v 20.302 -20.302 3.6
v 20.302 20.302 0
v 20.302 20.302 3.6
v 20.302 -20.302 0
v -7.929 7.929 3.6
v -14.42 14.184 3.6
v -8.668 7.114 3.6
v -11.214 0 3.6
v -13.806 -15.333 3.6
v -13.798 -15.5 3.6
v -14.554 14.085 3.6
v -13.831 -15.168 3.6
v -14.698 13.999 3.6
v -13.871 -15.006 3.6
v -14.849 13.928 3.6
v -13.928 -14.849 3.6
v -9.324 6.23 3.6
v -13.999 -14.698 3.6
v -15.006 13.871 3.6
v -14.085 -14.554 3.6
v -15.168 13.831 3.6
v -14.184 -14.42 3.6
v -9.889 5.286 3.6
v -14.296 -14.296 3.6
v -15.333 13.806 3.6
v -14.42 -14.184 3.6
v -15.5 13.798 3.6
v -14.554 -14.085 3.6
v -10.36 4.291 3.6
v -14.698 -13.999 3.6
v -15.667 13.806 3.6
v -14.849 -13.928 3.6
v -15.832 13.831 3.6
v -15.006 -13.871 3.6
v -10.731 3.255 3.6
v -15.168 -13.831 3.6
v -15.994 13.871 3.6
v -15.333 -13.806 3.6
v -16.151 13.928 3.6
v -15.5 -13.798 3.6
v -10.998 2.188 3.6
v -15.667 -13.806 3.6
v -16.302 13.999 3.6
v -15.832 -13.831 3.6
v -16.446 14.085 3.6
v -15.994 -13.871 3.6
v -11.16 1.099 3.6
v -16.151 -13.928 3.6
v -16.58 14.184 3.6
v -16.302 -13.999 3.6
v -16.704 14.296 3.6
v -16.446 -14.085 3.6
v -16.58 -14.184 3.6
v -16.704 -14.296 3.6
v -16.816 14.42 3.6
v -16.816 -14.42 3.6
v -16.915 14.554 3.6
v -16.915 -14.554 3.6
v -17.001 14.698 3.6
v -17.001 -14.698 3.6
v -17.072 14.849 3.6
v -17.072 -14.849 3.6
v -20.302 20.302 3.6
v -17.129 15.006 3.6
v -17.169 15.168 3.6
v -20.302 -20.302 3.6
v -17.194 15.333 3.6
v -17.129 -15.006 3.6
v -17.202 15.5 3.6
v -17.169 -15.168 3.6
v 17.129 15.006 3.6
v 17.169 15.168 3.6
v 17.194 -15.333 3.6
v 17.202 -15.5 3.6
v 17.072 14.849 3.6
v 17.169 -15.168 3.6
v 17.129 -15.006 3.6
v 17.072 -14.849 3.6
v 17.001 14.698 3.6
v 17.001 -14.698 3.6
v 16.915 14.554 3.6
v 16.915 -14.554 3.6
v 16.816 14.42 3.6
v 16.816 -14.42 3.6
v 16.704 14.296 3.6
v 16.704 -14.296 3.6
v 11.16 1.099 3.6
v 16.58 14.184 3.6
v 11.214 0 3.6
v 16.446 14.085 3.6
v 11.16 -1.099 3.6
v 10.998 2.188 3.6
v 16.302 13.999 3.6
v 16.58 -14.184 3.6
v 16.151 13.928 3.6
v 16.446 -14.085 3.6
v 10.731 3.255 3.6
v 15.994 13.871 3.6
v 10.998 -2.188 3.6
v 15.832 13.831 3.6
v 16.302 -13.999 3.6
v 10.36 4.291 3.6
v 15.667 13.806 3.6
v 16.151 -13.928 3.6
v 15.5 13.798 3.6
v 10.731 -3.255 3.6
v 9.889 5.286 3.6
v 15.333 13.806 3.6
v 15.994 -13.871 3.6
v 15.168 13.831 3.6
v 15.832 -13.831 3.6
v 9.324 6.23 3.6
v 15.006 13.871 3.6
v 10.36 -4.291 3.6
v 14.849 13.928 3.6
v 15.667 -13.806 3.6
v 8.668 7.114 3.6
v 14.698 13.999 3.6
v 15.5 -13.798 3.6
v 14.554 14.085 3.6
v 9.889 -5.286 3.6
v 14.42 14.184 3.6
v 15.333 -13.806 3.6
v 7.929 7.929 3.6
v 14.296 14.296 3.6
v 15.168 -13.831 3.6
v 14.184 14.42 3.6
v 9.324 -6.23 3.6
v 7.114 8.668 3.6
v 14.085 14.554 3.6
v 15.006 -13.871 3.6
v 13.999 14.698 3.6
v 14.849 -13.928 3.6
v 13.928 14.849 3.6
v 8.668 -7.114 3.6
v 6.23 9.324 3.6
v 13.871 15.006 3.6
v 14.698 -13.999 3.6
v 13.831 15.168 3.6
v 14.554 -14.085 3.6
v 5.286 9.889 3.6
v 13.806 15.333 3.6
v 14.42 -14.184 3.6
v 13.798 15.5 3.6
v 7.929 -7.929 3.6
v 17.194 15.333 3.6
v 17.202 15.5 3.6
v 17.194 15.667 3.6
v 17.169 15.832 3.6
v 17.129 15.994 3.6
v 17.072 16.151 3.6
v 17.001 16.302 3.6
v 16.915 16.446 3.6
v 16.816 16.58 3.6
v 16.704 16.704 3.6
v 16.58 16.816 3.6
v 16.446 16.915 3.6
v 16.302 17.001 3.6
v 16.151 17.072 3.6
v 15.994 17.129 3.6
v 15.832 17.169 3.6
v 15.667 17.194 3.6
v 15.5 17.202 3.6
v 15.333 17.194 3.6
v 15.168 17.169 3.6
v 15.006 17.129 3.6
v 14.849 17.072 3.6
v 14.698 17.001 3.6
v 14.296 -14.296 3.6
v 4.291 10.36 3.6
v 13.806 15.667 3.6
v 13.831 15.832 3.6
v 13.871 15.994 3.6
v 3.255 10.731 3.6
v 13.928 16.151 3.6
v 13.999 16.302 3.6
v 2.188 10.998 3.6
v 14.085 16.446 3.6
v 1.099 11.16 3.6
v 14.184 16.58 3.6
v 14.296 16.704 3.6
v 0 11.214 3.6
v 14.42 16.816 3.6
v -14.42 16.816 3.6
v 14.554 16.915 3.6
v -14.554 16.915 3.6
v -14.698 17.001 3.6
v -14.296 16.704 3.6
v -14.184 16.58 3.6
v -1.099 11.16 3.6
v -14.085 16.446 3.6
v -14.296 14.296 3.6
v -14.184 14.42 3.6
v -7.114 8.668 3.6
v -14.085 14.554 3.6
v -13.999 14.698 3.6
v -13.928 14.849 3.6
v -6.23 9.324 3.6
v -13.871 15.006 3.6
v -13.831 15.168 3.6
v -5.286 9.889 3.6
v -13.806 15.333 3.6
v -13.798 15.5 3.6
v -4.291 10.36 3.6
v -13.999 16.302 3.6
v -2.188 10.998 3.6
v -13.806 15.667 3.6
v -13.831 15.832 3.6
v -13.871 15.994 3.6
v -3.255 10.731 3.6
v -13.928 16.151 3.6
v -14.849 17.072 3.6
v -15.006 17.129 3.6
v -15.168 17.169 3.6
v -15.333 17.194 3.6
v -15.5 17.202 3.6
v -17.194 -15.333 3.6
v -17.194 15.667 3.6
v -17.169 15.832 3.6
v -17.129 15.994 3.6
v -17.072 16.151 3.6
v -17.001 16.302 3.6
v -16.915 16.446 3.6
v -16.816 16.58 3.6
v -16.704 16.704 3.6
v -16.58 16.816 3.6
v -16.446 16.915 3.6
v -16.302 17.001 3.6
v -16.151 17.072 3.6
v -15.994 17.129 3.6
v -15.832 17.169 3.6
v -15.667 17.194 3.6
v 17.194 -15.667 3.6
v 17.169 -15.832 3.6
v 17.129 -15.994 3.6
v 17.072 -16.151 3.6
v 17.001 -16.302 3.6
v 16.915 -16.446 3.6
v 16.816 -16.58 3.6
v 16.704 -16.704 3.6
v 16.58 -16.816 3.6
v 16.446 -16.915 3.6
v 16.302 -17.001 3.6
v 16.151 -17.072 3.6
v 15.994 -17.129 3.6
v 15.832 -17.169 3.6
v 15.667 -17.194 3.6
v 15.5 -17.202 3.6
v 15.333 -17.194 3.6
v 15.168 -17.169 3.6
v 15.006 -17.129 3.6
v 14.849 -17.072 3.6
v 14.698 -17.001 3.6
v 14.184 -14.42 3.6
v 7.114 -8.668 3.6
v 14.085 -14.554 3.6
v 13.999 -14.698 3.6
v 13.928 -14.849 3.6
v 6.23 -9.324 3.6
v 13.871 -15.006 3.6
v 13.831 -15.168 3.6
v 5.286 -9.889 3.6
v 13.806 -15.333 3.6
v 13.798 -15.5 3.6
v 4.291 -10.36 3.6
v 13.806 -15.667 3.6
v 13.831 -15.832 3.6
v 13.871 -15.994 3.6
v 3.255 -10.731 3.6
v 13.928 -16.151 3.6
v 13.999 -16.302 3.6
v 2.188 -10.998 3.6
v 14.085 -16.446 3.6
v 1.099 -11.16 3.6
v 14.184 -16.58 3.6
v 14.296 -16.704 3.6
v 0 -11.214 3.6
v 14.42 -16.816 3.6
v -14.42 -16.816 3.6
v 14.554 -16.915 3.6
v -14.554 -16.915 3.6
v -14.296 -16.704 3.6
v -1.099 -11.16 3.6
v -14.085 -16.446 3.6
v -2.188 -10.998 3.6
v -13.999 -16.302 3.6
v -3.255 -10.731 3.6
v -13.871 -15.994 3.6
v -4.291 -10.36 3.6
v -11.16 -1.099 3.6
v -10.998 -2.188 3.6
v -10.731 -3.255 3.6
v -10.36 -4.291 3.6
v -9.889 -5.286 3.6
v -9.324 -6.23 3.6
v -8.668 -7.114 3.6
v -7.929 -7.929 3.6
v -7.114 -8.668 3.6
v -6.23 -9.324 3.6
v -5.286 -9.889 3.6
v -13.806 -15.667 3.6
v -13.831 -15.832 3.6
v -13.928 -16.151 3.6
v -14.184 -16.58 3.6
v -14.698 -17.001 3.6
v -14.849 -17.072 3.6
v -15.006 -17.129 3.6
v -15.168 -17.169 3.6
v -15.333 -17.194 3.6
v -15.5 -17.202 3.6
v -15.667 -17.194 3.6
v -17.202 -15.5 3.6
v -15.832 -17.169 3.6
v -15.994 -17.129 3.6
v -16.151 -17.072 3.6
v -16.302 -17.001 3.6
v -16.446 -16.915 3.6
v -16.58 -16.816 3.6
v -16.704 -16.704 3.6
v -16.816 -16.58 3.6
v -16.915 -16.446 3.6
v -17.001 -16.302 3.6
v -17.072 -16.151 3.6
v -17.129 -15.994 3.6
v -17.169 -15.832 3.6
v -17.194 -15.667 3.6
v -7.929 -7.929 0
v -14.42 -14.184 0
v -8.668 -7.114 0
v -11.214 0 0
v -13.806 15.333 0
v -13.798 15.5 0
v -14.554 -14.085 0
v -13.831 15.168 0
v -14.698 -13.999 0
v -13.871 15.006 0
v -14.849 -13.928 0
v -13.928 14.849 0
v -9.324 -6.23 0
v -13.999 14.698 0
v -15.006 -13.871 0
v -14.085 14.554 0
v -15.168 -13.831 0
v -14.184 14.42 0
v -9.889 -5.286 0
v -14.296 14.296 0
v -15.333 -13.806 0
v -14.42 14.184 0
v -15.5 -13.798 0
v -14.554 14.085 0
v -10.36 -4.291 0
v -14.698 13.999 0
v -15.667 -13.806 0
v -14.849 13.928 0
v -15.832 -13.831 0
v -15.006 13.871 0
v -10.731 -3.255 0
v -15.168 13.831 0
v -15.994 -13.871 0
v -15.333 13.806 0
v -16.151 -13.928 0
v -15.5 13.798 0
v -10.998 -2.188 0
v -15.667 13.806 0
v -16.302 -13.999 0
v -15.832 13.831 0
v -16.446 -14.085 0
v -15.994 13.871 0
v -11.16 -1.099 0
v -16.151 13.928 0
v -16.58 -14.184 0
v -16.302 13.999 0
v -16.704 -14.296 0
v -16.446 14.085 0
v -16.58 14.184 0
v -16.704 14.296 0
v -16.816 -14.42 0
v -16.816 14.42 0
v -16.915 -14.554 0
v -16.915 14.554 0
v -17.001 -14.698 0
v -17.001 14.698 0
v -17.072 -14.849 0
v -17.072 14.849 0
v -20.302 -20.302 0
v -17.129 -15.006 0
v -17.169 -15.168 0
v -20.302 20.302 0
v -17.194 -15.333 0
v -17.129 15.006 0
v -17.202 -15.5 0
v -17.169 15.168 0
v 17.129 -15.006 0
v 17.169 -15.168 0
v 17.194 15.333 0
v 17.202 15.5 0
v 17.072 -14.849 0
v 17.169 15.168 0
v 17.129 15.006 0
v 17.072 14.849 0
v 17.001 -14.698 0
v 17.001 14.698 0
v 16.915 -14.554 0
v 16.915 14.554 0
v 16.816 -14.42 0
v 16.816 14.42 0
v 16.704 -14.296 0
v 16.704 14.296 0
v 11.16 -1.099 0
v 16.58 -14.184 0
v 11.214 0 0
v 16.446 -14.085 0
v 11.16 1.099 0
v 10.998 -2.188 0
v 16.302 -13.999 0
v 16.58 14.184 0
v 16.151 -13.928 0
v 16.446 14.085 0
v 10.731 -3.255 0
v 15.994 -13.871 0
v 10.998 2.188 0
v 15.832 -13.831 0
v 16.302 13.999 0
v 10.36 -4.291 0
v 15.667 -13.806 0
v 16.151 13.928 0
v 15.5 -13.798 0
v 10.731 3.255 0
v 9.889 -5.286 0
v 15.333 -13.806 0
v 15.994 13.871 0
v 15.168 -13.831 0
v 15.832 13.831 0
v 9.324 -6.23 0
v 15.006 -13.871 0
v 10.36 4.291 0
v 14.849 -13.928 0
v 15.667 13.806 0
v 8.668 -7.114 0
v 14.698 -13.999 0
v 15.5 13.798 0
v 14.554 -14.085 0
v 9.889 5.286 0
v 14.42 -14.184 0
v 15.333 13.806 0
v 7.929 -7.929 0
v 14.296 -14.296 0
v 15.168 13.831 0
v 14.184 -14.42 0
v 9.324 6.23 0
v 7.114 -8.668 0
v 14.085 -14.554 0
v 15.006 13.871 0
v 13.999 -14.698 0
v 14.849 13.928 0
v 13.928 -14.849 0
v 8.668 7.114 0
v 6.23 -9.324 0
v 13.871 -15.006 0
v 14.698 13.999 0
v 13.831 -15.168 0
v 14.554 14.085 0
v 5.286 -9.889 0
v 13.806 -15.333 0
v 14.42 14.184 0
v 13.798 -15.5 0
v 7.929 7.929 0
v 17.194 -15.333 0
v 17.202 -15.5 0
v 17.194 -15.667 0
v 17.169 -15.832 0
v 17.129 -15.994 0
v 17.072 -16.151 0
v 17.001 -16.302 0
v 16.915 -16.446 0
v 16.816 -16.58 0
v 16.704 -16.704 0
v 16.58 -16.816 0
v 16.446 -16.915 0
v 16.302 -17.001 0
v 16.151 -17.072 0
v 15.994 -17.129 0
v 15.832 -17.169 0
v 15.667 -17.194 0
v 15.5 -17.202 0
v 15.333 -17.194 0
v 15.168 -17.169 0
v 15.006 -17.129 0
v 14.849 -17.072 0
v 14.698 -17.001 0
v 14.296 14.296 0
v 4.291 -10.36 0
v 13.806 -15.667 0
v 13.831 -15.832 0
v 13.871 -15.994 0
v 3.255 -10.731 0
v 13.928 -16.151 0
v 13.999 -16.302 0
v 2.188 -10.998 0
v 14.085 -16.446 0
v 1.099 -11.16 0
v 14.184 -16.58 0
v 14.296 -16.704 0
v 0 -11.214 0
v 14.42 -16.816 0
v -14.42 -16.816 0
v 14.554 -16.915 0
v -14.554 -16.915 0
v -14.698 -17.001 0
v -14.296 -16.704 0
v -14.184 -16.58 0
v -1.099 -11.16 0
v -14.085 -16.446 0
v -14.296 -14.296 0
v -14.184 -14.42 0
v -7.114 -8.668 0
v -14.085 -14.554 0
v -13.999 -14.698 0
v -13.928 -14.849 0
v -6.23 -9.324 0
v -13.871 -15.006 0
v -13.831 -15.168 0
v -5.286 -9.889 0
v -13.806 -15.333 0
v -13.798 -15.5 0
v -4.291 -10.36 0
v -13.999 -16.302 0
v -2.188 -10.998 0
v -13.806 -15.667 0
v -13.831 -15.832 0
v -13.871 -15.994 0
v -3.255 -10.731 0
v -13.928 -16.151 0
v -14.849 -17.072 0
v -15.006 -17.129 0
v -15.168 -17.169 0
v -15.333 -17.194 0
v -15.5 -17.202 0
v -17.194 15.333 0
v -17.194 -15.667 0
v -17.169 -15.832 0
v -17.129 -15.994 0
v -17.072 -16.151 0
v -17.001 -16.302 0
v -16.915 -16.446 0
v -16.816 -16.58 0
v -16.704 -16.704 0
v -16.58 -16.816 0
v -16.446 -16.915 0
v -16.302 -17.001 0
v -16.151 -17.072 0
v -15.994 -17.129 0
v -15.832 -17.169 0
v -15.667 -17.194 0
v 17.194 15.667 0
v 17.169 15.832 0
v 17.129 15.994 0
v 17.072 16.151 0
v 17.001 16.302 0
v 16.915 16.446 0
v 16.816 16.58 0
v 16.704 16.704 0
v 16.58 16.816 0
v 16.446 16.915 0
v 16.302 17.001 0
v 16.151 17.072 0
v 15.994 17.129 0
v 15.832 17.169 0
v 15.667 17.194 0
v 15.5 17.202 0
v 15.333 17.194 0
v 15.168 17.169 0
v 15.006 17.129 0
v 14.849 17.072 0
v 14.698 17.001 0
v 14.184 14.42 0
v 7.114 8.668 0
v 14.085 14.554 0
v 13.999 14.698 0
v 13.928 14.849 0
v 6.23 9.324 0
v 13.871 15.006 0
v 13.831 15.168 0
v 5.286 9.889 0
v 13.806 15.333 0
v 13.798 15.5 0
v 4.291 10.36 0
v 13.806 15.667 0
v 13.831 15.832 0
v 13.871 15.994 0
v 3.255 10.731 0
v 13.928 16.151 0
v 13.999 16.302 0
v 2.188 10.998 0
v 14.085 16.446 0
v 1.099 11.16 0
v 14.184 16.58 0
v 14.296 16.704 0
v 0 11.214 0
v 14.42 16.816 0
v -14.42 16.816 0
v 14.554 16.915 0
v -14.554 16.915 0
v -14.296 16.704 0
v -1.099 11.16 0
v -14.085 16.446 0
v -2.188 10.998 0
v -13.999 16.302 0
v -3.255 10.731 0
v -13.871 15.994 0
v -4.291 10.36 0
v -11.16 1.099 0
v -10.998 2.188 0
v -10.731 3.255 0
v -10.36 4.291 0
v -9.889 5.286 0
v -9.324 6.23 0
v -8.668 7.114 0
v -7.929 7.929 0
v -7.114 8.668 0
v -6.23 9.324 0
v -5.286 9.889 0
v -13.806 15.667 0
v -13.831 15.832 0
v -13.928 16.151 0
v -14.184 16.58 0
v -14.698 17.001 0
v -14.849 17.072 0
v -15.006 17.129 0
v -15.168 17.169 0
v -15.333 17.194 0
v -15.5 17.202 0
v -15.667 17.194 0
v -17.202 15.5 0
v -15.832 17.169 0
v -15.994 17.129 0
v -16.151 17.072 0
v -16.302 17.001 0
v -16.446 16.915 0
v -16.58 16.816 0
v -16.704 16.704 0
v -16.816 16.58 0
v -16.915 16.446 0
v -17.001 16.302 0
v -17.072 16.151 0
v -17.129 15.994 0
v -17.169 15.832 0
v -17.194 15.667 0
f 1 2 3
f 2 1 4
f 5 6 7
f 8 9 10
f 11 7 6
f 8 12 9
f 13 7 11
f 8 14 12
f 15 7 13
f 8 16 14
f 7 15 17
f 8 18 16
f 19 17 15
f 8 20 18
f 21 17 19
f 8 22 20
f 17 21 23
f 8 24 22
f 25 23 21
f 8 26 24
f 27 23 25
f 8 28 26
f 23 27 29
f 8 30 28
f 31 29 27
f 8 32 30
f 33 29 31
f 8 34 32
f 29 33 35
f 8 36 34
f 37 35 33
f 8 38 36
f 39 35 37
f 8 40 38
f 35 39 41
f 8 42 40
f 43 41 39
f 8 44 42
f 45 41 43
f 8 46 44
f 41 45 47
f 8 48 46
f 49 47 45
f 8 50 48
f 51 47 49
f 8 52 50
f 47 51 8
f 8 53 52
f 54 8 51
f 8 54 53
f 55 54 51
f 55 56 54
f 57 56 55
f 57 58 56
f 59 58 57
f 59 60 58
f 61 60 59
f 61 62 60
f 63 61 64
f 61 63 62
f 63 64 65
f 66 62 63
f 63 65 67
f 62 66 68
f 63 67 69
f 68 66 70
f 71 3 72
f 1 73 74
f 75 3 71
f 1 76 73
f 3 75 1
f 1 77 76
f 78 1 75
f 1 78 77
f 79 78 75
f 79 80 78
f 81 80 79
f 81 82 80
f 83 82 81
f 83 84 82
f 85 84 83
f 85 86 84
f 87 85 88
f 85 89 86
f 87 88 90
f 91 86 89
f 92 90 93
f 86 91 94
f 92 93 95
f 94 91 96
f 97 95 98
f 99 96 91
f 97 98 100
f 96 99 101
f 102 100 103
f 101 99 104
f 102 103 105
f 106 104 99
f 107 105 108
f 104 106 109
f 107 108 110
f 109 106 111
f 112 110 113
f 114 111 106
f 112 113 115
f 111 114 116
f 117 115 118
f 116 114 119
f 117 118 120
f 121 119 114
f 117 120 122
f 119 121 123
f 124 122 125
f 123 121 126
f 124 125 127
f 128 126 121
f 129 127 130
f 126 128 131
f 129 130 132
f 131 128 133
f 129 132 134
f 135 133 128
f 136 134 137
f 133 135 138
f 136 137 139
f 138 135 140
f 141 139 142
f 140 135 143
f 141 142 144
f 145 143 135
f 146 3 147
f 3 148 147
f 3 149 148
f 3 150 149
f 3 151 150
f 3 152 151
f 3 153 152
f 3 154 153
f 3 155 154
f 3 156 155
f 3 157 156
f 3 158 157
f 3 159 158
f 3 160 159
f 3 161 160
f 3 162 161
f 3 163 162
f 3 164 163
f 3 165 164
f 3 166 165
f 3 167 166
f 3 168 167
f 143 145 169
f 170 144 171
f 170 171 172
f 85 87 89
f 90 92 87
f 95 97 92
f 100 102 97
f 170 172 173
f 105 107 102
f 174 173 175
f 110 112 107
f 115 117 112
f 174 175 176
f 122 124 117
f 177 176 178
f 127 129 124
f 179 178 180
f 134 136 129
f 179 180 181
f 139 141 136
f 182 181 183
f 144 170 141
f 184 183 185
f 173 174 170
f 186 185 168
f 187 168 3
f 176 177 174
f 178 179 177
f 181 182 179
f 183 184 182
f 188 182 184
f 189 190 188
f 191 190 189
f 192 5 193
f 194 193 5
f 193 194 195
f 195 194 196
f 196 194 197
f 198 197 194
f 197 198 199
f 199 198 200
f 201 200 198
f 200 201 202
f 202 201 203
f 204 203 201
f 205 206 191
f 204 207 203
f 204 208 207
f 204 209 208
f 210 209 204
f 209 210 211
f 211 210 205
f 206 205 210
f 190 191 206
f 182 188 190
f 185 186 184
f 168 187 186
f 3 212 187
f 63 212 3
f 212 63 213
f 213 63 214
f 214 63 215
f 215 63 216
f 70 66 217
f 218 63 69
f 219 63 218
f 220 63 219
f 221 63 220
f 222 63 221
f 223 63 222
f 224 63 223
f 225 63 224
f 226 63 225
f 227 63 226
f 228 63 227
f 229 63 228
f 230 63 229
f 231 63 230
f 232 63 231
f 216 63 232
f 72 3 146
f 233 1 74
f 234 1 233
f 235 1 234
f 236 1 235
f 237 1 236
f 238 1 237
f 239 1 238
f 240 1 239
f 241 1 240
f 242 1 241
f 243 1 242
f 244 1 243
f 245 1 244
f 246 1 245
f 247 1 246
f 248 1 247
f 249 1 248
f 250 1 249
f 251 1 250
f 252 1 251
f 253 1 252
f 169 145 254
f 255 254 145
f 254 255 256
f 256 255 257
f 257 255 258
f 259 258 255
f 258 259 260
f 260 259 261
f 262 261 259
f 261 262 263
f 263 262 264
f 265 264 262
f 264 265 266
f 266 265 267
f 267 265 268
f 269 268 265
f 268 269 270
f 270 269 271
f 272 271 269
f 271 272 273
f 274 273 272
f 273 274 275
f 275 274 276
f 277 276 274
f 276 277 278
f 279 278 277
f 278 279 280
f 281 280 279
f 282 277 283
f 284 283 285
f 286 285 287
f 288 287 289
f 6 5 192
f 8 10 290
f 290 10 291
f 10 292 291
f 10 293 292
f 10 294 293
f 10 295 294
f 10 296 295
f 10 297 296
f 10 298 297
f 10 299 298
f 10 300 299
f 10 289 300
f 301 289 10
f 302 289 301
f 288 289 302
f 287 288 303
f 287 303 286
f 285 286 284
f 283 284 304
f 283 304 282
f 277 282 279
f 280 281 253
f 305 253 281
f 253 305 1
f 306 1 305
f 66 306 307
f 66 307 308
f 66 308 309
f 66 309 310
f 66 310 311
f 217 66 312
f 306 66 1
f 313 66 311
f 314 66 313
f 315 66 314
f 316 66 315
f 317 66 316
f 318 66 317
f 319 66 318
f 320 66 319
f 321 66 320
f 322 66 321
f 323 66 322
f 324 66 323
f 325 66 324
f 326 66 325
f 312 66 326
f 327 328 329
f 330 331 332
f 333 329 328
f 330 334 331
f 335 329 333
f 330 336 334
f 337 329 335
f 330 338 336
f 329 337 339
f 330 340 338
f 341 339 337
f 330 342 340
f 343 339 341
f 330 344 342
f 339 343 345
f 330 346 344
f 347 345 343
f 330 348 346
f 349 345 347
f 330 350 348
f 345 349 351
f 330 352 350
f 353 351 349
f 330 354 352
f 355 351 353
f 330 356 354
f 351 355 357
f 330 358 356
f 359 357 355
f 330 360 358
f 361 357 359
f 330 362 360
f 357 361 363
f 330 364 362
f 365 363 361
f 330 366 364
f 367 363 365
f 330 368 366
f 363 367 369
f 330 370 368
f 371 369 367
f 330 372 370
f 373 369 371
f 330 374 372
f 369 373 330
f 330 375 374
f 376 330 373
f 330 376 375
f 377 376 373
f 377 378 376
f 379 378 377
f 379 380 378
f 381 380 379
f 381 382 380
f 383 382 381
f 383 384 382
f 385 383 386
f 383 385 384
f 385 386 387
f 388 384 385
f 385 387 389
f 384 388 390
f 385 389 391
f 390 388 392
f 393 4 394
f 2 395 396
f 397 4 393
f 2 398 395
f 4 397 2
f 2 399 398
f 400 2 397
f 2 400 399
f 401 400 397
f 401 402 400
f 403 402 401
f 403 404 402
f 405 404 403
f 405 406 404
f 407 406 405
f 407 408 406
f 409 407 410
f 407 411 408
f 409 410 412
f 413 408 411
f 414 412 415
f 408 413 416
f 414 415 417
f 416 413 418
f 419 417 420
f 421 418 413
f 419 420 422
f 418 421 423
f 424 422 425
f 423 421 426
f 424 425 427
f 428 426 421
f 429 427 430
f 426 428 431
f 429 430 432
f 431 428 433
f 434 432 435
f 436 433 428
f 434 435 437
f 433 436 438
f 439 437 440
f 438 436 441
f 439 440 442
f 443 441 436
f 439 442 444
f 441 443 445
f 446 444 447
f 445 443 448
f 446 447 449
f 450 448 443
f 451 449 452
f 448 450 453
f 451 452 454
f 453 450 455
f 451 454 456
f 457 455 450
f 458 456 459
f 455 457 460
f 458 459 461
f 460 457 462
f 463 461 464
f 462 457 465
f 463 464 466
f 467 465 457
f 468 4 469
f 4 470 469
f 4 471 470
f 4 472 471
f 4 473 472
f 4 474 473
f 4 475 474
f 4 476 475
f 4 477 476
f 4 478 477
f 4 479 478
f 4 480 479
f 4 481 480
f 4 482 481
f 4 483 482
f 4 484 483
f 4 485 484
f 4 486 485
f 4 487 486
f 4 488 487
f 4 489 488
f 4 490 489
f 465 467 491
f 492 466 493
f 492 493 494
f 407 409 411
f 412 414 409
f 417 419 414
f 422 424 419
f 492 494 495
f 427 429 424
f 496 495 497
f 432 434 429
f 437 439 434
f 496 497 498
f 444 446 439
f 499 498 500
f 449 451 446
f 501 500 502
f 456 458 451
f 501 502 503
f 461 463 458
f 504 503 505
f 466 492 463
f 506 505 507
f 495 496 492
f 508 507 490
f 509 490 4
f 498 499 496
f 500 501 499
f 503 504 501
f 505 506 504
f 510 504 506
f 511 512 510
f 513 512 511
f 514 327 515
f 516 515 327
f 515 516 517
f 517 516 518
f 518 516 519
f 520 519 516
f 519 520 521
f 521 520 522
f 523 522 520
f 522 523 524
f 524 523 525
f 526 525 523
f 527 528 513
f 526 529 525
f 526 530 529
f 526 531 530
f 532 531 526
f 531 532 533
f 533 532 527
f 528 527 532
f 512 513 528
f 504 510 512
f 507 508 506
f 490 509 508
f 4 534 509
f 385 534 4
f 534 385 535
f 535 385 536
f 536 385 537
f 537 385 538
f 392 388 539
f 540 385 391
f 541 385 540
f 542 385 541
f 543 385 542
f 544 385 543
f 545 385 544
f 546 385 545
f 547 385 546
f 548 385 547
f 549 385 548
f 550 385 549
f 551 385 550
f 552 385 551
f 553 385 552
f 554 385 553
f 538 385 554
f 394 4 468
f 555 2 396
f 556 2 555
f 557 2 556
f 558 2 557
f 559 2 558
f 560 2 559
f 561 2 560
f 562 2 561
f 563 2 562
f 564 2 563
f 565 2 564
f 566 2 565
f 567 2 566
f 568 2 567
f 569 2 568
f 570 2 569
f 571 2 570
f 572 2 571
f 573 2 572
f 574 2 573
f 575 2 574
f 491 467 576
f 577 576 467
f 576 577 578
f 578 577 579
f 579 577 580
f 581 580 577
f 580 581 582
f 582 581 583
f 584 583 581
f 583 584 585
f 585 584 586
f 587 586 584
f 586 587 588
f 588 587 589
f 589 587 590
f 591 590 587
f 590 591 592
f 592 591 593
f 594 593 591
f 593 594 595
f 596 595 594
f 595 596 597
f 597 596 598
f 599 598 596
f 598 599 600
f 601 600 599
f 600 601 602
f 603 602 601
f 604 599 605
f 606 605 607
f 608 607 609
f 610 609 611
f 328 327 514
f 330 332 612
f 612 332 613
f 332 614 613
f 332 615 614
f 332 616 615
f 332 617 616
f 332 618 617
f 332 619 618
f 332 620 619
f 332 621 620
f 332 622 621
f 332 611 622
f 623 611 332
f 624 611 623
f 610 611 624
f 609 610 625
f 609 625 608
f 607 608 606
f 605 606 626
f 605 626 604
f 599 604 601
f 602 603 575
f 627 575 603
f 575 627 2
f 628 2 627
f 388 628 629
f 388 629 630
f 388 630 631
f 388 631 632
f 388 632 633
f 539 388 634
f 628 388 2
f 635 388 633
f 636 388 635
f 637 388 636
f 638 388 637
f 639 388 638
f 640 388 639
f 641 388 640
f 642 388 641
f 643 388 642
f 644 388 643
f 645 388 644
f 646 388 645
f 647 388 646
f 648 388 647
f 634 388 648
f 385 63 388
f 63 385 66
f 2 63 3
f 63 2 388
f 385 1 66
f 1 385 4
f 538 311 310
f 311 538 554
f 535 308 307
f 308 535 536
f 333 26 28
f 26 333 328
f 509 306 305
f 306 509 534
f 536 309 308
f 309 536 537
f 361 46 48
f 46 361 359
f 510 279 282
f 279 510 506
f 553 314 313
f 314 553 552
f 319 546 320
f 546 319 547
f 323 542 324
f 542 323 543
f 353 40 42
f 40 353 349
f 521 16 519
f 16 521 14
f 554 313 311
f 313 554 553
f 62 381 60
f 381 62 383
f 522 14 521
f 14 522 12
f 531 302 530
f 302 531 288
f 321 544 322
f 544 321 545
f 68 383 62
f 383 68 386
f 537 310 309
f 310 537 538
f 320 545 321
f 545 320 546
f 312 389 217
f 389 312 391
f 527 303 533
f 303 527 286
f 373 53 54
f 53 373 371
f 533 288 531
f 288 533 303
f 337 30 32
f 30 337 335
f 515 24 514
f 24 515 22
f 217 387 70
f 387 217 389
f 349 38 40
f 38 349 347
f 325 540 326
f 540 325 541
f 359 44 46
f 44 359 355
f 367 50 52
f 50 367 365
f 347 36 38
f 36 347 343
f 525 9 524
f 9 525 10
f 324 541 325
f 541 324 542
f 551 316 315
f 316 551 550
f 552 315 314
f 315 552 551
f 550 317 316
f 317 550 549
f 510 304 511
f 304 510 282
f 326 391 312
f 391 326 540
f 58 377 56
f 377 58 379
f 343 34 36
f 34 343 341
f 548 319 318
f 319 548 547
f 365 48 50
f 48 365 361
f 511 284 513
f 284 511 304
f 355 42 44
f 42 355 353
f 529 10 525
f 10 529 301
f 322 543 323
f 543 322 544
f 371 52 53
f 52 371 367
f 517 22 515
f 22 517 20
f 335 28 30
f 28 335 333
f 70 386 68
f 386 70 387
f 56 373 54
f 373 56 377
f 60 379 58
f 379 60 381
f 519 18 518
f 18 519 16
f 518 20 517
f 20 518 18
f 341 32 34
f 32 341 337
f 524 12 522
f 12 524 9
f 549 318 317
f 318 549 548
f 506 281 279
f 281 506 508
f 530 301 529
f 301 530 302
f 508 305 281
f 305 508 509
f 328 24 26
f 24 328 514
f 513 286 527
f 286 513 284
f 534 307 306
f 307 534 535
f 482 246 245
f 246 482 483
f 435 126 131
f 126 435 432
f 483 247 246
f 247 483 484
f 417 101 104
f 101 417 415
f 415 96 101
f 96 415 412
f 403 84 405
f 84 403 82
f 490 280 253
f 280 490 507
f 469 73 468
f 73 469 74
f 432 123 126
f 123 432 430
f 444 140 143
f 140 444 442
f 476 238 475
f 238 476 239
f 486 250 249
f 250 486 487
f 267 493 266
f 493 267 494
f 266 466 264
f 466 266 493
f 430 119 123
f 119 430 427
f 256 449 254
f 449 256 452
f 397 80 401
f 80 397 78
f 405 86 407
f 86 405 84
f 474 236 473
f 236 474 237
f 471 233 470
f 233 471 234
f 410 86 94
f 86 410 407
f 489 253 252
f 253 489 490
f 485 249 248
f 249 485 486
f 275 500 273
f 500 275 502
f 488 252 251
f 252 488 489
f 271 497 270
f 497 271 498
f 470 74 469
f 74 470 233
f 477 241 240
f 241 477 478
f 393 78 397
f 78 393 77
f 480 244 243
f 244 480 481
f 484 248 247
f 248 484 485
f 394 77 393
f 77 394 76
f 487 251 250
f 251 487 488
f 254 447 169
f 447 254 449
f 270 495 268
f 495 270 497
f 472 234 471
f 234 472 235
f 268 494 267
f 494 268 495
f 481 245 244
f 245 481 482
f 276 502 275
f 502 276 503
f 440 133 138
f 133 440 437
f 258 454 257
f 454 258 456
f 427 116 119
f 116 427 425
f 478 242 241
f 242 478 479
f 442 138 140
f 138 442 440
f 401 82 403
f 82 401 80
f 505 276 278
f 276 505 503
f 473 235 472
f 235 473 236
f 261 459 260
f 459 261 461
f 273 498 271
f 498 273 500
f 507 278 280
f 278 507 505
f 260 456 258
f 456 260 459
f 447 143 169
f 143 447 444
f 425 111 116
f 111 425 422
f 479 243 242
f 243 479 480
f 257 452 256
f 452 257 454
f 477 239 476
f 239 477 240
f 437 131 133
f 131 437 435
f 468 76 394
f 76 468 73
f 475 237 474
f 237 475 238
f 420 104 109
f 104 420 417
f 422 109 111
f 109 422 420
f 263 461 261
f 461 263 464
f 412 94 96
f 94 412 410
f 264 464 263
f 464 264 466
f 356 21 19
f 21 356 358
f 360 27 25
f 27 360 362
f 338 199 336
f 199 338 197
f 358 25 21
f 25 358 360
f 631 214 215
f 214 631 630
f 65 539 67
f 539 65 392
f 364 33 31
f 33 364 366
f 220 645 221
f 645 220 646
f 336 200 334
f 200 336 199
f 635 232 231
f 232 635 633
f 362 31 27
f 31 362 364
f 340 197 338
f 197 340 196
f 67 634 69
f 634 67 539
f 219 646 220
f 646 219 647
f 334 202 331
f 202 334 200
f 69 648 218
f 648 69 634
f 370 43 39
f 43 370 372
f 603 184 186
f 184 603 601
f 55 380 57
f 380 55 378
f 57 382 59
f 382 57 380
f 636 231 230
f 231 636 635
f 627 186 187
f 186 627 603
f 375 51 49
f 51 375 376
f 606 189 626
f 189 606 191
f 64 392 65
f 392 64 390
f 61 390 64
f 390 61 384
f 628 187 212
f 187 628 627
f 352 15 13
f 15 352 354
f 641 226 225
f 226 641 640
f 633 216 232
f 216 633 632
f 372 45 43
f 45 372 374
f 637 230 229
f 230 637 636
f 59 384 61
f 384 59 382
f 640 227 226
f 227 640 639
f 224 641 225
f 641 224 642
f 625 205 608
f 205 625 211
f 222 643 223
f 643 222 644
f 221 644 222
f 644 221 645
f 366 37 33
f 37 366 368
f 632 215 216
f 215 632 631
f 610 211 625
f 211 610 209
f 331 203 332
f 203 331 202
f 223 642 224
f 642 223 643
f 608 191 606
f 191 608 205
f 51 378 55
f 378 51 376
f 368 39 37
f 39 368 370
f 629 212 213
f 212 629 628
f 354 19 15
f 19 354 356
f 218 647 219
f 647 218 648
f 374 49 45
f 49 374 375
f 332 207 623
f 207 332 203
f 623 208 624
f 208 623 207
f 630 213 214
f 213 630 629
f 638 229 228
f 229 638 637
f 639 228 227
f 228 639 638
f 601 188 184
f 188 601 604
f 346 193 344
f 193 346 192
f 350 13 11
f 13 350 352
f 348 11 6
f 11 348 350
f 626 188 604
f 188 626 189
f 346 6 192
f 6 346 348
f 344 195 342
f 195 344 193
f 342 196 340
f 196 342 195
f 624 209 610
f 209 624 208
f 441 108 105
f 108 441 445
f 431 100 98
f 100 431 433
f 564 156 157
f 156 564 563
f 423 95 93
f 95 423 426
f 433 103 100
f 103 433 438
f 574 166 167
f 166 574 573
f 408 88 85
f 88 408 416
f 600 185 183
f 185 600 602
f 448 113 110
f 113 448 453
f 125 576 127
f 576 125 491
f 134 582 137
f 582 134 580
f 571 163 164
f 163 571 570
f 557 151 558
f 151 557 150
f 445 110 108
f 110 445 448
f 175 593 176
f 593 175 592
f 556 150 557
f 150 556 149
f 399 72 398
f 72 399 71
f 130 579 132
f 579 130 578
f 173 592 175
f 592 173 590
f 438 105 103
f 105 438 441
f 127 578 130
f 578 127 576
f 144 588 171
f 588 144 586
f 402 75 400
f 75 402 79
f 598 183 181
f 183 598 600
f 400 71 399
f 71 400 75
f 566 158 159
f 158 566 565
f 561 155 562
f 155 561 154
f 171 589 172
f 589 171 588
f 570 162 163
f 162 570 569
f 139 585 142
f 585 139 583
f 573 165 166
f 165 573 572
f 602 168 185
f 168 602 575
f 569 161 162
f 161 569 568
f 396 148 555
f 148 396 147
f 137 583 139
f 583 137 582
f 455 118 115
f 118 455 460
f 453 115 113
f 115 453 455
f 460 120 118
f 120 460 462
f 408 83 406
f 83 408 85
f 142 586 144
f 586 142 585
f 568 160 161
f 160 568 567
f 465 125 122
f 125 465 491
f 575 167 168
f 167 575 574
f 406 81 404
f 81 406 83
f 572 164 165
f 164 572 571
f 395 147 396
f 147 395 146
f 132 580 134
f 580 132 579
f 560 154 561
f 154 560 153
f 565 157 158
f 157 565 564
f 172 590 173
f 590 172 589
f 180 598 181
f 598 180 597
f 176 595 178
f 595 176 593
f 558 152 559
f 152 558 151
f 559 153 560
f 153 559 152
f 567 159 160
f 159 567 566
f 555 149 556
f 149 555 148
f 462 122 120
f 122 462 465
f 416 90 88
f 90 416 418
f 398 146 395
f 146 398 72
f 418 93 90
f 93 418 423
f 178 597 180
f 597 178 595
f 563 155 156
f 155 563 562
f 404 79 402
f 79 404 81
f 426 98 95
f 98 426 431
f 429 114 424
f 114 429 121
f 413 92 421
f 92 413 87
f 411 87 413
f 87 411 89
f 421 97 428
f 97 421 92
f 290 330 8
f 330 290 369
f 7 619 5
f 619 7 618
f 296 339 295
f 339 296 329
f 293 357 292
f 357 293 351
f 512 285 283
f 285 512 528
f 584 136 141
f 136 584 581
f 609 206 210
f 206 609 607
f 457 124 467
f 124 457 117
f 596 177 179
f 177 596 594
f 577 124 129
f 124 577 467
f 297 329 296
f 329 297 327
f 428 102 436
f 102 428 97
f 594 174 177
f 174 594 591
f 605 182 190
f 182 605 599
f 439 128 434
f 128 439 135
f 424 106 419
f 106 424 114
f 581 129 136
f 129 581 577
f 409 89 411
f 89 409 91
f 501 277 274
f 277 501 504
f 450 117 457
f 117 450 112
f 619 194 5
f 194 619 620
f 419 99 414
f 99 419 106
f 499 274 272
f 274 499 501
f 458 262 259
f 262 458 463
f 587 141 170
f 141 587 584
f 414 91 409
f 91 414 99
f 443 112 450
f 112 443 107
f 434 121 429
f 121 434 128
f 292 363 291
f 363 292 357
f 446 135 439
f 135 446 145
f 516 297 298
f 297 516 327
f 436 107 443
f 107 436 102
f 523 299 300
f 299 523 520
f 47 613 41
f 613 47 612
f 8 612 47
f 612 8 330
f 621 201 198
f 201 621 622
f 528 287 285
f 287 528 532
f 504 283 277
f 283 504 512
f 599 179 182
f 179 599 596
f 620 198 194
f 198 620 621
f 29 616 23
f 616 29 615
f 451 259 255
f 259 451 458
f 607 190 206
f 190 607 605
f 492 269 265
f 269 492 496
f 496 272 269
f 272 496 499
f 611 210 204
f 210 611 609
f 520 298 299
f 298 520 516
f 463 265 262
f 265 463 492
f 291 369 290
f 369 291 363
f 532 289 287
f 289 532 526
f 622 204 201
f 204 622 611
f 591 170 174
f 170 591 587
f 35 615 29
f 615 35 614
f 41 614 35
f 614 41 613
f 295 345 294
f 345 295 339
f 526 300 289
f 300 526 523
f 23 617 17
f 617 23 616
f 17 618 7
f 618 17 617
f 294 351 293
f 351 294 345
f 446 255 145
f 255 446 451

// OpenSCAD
// body plate
difference() {
  union() {
    // body plate (plate)
    multmatrix([[1, 0, 0, 0], [0, 1, 0, 0], [0, 0, 1, 0], [0, 0, 0, 1]]) translate([-20.30205, -20.30205, 0]) cube([40.6041, 40.6041, 3.6]);
  }
  // cut slot_0 (bolt_slot)
  multmatrix([[1, 0, 0, -15.5], [0, 1, 0, -15.5], [0, 0, 1, -1], [0, 0, 0, 1]]) linear_extrude(height=5.6) polygon(points=[[0, -1.70205], [0.16683, -1.693854], [0.332054, -1.669346], [0.494079, -1.62876], [0.651346, -1.572489], [0.802341, -1.501074], [0.945608, -1.415203], [1.079769, -1.315703], [1.203531, -1.203531], [1.315703, -1.079769], [1.415203, -0.945608], [1.501074, -0.802341], [1.572489, -0.651346], [1.62876, -0.494079], [1.669346, -0.332054], [1.693854, -0.16683], [1.70205, 0], [1.70205, 0], [1.693854, 0.16683], [1.669346, 0.332054], [1.62876, 0.494079], [1.572489, 0.651346], [1.501074, 0.802341], [1.415203, 0.945608], [1.315703, 1.079769], [1.203531, 1.203531], [1.079769, 1.315703], [0.945608, 1.415203], [0.802341, 1.501074], [0.651346, 1.572489], [0.494079, 1.62876], [0.332054, 1.669346], [0.16683, 1.693854], [0, 1.70205], [0, 1.70205], [-0.16683, 1.693854], [-0.332054, 1.669346], [-0.494079, 1.62876], [-0.651346, 1.572489], [-0.802341, 1.501074], [-0.945608, 1.415203], [-1.079769, 1.315703], [-1.203531, 1.203531], [-1.315703, 1.079769], [-1.415203, 0.945608], [-1.501074, 0.802341], [-1.572489, 0.651346], [-1.62876, 0.494079], [-1.669346, 0.332054], [-1.693854, 0.16683], [-1.70205, 0], [-1.70205, 0], [-1.693854, -0.16683], [-1.669346, -0.332054], [-1.62876, -0.494079], [-1.572489, -0.651346], [-1.501074, -0.802341], [-1.415203, -0.945608], [-1.315703, -1.079769], [-1.203531, -1.203531], [-1.079769, -1.315703], [-0.945608, -1.415203], [-0.802341, -1.501074], [-0.651346, -1.572489], [-0.494079, -1.62876], [-0.332054, -1.669346], [-0.16683, -1.693854], [0, -1.70205]]);
  // cut slot_1 (bolt_slot)
  multmatrix([[1, 0, 0, 15.5], [0, 1, 0, -15.5], [0, 0, 1, -1], [0, 0, 0, 1]]) linear_extrude(height=5.6) polygon(points=[[0, -1.70205], [0.16683, -1.693854], [0.332054, -1.669346], [0.494079, -1.62876], [0.651346, -1.572489], [0.802341, -1.501074], [0.945608, -1.415203], [1.079769, -1.315703], [1.203531, -1.203531], [1.315703, -1.079769], [1.415203, -0.945608], [1.501074, -0.802341], [1.572489, -0.651346], [1.62876, -0.494079], [1.669346, -0.332054], [1.693854, -0.16683], [1.70205, 0], [1.70205, 0], [1.693854, 0.16683], [1.669346, 0.332054], [1.62876, 0.494079], [1.572489, 0.651346], [1.501074, 0.802341], [1.415203, 0.945608], [1.315703, 1.079769], [1.203531, 1.203531], [1.079769, 1.315703], [0.945608, 1.415203], [0.802341, 1.501074], [0.651346, 1.572489], [0.494079, 1.62876], [0.332054, 1.669346], [0.16683, 1.693854], [0, 1.70205], [0, 1.70205], [-0.16683, 1.693854], [-0.332054, 1.669346], [-0.494079, 1.62876], [-0.651346, 1.572489], [-0.802341, 1.501074], [-0.945608, 1.415203], [-1.079769, 1.315703], [-1.203531, 1.203531], [-1.315703, 1.079769], [-1.415203, 0.945608], [-1.501074, 0.802341], [-1.572489, 0.651346], [-1.62876, 0.494079], [-1.669346, 0.332054], [-1.693854, 0.16683], [-1.70205, 0], [-1.70205, 0], [-1.693854, -0.16683], [-1.669346, -0.332054], [-1.62876, -0.494079], [-1.572489, -0.651346], [-1.501074, -0.802341], [-1.415203, -0.945608], [-1.315703, -1.079769], [-1.203531, -1.203531], [-1.079769, -1.315703], [-0.945608, -1.415203], [-0.802341, -1.501074], [-0.651346, -1.572489], [-0.494079, -1.62876], [-0.332054, -1.669346], [-0.16683, -1.693854], [0, -1.70205]]);
  // cut slot_2 (bolt_slot)
  multmatrix([[1, 0, 0, -15.5], [0, 1, 0, 15.5], [0, 0, 1, -1], [0, 0, 0, 1]]) linear_extrude(height=5.6) polygon(points=[[0, -1.70205], [0.16683, -1.693854], [0.332054, -1.669346], [0.494079, -1.62876], [0.651346, -1.572489], [0.802341, -1.501074], [0.945608, -1.415203], [1.079769, -1.315703], [1.203531, -1.203531], [1.315703, -1.079769], [1.415203, -0.945608], [1.501074, -0.802341], [1.572489, -0.651346], [1.62876, -0.494079], [1.669346, -0.332054], [1.693854, -0.16683], [1.70205, 0], [1.70205, 0], [1.693854, 0.16683], [1.669346, 0.332054], [1.62876, 0.494079], [1.572489, 0.651346], [1.501074, 0.802341], [1.415203, 0.945608], [1.315703, 1.079769], [1.203531, 1.203531], [1.079769, 1.315703], [0.945608, 1.415203], [0.802341, 1.501074], [0.651346, 1.572489], [0.494079, 1.62876], [0.332054, 1.669346], [0.16683, 1.693854], [0, 1.70205], [0, 1.70205], [-0.16683, 1.693854], [-0.332054, 1.669346], [-0.494079, 1.62876], [-0.651346, 1.572489], [-0.802341, 1.501074], [-0.945608, 1.415203], [-1.079769, 1.315703], [-1.203531, 1.203531], [-1.315703, 1.079769], [-1.415203, 0.945608], [-1.501074, 0.802341], [-1.572489, 0.651346], [-1.62876, 0.494079], [-1.669346, 0.332054], [-1.693854, 0.16683], [-1.70205, 0], [-1.70205, 0], [-1.693854, -0.16683], [-1.669346, -0.332054], [-1.62876, -0.494079], [-1.572489, -0.651346], [-1.501074, -0.802341], [-1.415203, -0.945608], [-1.315703, -1.079769], [-1.203531, -1.203531], [-1.079769, -1.315703], [-0.945608, -1.415203], [-0.802341, -1.501074], [-0.651346, -1.572489], [-0.494079, -1.62876], [-0.332054, -1.669346], [-0.16683, -1.693854], [0, -1.70205]]);
  // cut slot_3 (bolt_slot)
  multmatrix([[1, 0, 0, 15.5], [0, 1, 0, 15.5], [0, 0, 1, -1], [0, 0, 0, 1]]) linear_extrude(height=5.6) polygon(points=[[0, -1.70205], [0.16683, -1.693854], [0.332054, -1.669346], [0.494079, -1.62876], [0.651346, -1.572489], [0.802341, -1.501074], [0.945608, -1.415203], [1.079769, -1.315703], [1.203531, -1.203531], [1.315703, -1.079769], [1.415203, -0.945608], [1.501074, -0.802341], [1.572489, -0.651346], [1.62876, -0.494079], [1.669346, -0.332054], [1.693854, -0.16683], [1.70205, 0], [1.70205, 0], [1.693854, 0.16683], [1.669346, 0.332054], [1.62876, 0.494079], [1.572489, 0.651346], [1.501074, 0.802341], [1.415203, 0.945608], [1.315703, 1.079769], [1.203531, 1.203531], [1.079769, 1.315703], [0.945608, 1.415203], [0.802341, 1.501074], [0.651346, 1.572489], [0.494079, 1.62876], [0.332054, 1.669346], [0.16683, 1.693854], [0, 1.70205], [0, 1.70205], [-0.16683, 1.693854], [-0.332054, 1.669346], [-0.494079, 1.62876], [-0.651346, 1.572489], [-0.802341, 1.501074], [-0.945608, 1.415203], [-1.079769, 1.315703], [-1.203531, 1.203531], [-1.315703, 1.079769], [-1.415203, 0.945608], [-1.501074, 0.802341], [-1.572489, 0.651346], [-1.62876, 0.494079], [-1.669346, 0.332054], [-1.693854, 0.16683], [-1.70205, 0], [-1.70205, 0], [-1.693854, -0.16683], [-1.669346, -0.332054], [-1.62876, -0.494079], [-1.572489, -0.651346], [-1.501074, -0.802341], [-1.415203, -0.945608], [-1.315703, -1.079769], [-1.203531, -1.203531], [-1.079769, -1.315703], [-0.945608, -1.415203], [-0.802341, -1.501074], [-0.651346, -1.572489], [-0.494079, -1.62876], [-0.332054, -1.669346], [-0.16683, -1.693854], [0, -1.70205]]);
  // cut clear_pilot (recess)
  multmatrix([[1, 0, 0, 0], [0, 1, 0, 0], [0, 0, 1, -1], [0, 0, 0, 1]]) cylinder(h=5.6, d=22.427014, $fn=64);
  // cut clear_shaft (recess)
  multmatrix([[1, 0, 0, 0], [0, 1, 0, 0], [0, 0, 1, -1], [0, 0, 0, 1]]) cylinder(h=5.6, d=5.406512, $fn=64);
}
